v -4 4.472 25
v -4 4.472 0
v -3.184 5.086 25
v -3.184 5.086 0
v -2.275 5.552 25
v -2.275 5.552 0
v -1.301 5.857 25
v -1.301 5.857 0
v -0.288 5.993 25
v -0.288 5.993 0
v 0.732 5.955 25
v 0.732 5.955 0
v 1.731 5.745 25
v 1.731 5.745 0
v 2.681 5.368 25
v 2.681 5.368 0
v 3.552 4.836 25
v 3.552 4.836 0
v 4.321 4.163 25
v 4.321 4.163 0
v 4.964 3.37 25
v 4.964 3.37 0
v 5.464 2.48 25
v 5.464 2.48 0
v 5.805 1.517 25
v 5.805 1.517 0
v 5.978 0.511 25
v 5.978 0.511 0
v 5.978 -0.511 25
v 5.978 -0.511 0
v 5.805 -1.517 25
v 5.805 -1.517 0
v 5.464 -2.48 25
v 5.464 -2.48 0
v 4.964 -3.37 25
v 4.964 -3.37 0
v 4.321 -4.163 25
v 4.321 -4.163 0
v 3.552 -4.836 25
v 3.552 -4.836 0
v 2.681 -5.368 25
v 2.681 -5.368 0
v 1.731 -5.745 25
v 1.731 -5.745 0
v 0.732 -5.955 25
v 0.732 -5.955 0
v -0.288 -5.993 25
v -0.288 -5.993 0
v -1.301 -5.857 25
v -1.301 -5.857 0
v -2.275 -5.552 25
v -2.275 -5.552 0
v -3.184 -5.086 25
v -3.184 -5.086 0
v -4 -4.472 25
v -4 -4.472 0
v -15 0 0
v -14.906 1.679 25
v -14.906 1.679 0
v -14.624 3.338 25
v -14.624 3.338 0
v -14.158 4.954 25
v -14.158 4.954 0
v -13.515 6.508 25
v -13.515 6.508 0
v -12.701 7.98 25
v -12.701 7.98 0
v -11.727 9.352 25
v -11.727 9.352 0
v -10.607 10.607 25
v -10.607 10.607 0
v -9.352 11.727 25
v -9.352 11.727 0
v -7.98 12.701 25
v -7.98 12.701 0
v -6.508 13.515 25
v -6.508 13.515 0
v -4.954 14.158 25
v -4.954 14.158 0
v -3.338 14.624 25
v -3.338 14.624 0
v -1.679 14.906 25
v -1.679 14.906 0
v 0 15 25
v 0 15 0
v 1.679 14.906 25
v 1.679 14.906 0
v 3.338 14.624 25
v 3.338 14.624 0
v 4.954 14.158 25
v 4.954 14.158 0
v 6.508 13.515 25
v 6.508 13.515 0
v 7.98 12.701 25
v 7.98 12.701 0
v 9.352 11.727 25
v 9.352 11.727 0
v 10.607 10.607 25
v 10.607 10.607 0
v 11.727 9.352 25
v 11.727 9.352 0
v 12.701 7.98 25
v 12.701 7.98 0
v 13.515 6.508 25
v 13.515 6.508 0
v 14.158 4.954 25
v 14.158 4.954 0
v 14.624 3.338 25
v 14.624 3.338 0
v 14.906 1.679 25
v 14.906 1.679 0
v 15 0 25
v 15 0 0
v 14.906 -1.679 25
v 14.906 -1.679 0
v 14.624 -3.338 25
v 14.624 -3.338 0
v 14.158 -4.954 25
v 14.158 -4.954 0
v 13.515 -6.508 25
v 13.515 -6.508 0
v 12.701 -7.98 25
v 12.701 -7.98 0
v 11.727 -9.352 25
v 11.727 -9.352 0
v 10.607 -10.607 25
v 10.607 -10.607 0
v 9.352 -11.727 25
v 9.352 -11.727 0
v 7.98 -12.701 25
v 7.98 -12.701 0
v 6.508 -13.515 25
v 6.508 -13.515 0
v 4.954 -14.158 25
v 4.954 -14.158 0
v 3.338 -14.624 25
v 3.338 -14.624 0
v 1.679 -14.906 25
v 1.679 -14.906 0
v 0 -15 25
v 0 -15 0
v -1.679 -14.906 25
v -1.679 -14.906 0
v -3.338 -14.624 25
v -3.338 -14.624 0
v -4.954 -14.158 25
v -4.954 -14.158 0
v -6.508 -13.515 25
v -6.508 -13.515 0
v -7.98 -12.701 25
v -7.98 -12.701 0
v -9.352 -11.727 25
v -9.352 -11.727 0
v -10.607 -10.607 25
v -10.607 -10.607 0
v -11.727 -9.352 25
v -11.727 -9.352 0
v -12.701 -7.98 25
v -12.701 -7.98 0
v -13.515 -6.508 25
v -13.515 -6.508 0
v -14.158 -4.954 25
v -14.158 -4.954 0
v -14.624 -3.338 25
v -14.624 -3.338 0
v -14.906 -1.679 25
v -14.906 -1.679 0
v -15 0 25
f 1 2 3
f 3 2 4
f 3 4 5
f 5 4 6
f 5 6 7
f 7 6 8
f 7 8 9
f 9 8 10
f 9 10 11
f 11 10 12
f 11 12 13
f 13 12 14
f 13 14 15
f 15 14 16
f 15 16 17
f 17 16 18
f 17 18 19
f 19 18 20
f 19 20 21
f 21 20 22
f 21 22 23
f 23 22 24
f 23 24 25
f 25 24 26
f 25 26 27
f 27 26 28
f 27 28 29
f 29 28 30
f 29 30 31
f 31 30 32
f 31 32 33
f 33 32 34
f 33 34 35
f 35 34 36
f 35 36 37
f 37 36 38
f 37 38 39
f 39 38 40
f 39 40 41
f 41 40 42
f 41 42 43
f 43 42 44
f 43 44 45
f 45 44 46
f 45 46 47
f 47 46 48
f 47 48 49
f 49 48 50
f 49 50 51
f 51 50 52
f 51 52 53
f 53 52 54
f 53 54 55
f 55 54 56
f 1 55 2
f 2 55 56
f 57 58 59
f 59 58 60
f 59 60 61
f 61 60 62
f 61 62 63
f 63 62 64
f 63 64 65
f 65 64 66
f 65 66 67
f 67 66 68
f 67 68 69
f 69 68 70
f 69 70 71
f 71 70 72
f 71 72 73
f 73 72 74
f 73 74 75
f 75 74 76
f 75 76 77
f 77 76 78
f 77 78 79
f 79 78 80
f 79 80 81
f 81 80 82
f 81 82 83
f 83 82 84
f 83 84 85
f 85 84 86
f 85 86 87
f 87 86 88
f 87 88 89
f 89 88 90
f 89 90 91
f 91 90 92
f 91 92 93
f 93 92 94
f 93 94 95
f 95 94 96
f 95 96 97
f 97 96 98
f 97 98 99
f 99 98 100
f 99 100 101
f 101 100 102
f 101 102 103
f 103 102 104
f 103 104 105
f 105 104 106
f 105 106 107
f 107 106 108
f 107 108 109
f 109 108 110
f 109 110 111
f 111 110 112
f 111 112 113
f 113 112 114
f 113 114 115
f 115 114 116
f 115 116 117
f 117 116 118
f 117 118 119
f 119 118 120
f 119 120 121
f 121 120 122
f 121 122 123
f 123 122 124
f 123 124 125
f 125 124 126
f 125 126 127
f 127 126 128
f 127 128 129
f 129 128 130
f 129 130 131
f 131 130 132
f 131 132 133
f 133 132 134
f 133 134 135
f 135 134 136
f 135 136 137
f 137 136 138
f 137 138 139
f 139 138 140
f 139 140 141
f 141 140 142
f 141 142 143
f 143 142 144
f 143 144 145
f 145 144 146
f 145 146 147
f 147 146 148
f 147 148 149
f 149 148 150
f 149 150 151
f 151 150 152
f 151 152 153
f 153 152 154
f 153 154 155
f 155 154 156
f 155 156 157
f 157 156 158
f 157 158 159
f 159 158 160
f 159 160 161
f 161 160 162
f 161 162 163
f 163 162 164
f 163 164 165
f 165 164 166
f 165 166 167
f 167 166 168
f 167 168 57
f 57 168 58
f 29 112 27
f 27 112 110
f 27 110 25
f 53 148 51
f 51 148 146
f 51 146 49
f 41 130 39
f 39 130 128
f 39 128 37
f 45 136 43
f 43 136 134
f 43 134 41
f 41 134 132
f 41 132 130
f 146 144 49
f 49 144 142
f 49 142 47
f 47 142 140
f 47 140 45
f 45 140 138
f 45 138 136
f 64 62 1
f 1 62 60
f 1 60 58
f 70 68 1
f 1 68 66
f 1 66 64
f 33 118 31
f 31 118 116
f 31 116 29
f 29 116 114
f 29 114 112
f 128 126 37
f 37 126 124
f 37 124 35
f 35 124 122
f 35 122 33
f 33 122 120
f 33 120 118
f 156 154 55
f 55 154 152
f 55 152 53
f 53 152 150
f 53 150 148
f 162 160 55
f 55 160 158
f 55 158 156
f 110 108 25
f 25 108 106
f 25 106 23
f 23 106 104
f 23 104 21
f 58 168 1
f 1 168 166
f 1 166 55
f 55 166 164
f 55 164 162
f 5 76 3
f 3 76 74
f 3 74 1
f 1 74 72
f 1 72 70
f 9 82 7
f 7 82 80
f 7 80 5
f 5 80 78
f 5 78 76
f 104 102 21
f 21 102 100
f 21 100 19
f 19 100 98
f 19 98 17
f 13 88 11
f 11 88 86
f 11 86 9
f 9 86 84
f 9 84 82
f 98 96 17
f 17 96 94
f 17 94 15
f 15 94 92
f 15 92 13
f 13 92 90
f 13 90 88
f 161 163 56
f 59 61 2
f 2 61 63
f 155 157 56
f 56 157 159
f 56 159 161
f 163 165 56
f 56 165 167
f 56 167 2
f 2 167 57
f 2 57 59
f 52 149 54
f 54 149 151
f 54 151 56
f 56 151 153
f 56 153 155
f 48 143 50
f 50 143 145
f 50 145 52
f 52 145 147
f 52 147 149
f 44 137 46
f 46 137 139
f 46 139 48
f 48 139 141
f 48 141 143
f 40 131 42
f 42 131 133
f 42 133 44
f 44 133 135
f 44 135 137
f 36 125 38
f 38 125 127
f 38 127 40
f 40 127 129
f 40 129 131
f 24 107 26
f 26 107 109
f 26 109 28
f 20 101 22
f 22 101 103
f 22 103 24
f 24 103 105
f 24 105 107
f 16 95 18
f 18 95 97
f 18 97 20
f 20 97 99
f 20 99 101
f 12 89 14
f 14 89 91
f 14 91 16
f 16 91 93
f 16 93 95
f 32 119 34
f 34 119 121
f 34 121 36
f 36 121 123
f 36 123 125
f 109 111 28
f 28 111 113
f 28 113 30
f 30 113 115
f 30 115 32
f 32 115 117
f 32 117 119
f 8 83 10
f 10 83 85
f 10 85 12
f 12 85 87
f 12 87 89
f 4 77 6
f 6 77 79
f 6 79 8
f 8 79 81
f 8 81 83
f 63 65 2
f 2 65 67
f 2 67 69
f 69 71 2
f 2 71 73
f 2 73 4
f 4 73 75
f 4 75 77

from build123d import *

# Parameters (mm, degrees)
BOSS_EXTRU_1_DEPTH = 25


with BuildPart() as part:
    # Esquisse2 → Boss.-Extru.1 (new body)
    with BuildSketch(Plane.XY):
        with BuildLine():
            ThreePointArc((-4, 4.472135955), (-2.140932539, 5.605034154), (0, 6))
            Line((0, 6), (0, 15))
            ThreePointArc((0, 15), (-2.018355219, 14.863587797), (-4, 14.456832295))
            Line((-4, 14.456832295), (-4, 4.472135955))
        make_face()
        with BuildLine():
            Line((0, 15), (0, 6))
            ThreePointArc((0, 6), (4.242640687, 4.242640687), (6, 0))
            ThreePointArc((6, 0), (2.449489743, -5.477225575), (-4, -4.472135955))
            Line((-4, -4.472135955), (-4, -14.456832295))
            ThreePointArc((-4, -14.456832295), (9.082951062, -11.937336386), (15, 0))
            ThreePointArc((15, 0), (10.606601718, 10.606601718), (0, 15))
        make_face()
        with BuildLine():
            ThreePointArc((-4, -4.472135955), (-6, 0), (-4, 4.472135955))
            Line((-4, 4.472135955), (-4, 14.456832295))
            ThreePointArc((-4, 14.456832295), (-15, 0), (-4, -14.456832295))
            Line((-4, -14.456832295), (-4, -4.472135955))
        make_face()
        with BuildLine():
            Line((-4, -4.472135955), (-4, 4.472135955))
            ThreePointArc((-4, 4.472135955), (-6, 0), (-4, -4.472135955))
        make_face()
    extrude(amount=BOSS_EXTRU_1_DEPTH)


solid = part.part
